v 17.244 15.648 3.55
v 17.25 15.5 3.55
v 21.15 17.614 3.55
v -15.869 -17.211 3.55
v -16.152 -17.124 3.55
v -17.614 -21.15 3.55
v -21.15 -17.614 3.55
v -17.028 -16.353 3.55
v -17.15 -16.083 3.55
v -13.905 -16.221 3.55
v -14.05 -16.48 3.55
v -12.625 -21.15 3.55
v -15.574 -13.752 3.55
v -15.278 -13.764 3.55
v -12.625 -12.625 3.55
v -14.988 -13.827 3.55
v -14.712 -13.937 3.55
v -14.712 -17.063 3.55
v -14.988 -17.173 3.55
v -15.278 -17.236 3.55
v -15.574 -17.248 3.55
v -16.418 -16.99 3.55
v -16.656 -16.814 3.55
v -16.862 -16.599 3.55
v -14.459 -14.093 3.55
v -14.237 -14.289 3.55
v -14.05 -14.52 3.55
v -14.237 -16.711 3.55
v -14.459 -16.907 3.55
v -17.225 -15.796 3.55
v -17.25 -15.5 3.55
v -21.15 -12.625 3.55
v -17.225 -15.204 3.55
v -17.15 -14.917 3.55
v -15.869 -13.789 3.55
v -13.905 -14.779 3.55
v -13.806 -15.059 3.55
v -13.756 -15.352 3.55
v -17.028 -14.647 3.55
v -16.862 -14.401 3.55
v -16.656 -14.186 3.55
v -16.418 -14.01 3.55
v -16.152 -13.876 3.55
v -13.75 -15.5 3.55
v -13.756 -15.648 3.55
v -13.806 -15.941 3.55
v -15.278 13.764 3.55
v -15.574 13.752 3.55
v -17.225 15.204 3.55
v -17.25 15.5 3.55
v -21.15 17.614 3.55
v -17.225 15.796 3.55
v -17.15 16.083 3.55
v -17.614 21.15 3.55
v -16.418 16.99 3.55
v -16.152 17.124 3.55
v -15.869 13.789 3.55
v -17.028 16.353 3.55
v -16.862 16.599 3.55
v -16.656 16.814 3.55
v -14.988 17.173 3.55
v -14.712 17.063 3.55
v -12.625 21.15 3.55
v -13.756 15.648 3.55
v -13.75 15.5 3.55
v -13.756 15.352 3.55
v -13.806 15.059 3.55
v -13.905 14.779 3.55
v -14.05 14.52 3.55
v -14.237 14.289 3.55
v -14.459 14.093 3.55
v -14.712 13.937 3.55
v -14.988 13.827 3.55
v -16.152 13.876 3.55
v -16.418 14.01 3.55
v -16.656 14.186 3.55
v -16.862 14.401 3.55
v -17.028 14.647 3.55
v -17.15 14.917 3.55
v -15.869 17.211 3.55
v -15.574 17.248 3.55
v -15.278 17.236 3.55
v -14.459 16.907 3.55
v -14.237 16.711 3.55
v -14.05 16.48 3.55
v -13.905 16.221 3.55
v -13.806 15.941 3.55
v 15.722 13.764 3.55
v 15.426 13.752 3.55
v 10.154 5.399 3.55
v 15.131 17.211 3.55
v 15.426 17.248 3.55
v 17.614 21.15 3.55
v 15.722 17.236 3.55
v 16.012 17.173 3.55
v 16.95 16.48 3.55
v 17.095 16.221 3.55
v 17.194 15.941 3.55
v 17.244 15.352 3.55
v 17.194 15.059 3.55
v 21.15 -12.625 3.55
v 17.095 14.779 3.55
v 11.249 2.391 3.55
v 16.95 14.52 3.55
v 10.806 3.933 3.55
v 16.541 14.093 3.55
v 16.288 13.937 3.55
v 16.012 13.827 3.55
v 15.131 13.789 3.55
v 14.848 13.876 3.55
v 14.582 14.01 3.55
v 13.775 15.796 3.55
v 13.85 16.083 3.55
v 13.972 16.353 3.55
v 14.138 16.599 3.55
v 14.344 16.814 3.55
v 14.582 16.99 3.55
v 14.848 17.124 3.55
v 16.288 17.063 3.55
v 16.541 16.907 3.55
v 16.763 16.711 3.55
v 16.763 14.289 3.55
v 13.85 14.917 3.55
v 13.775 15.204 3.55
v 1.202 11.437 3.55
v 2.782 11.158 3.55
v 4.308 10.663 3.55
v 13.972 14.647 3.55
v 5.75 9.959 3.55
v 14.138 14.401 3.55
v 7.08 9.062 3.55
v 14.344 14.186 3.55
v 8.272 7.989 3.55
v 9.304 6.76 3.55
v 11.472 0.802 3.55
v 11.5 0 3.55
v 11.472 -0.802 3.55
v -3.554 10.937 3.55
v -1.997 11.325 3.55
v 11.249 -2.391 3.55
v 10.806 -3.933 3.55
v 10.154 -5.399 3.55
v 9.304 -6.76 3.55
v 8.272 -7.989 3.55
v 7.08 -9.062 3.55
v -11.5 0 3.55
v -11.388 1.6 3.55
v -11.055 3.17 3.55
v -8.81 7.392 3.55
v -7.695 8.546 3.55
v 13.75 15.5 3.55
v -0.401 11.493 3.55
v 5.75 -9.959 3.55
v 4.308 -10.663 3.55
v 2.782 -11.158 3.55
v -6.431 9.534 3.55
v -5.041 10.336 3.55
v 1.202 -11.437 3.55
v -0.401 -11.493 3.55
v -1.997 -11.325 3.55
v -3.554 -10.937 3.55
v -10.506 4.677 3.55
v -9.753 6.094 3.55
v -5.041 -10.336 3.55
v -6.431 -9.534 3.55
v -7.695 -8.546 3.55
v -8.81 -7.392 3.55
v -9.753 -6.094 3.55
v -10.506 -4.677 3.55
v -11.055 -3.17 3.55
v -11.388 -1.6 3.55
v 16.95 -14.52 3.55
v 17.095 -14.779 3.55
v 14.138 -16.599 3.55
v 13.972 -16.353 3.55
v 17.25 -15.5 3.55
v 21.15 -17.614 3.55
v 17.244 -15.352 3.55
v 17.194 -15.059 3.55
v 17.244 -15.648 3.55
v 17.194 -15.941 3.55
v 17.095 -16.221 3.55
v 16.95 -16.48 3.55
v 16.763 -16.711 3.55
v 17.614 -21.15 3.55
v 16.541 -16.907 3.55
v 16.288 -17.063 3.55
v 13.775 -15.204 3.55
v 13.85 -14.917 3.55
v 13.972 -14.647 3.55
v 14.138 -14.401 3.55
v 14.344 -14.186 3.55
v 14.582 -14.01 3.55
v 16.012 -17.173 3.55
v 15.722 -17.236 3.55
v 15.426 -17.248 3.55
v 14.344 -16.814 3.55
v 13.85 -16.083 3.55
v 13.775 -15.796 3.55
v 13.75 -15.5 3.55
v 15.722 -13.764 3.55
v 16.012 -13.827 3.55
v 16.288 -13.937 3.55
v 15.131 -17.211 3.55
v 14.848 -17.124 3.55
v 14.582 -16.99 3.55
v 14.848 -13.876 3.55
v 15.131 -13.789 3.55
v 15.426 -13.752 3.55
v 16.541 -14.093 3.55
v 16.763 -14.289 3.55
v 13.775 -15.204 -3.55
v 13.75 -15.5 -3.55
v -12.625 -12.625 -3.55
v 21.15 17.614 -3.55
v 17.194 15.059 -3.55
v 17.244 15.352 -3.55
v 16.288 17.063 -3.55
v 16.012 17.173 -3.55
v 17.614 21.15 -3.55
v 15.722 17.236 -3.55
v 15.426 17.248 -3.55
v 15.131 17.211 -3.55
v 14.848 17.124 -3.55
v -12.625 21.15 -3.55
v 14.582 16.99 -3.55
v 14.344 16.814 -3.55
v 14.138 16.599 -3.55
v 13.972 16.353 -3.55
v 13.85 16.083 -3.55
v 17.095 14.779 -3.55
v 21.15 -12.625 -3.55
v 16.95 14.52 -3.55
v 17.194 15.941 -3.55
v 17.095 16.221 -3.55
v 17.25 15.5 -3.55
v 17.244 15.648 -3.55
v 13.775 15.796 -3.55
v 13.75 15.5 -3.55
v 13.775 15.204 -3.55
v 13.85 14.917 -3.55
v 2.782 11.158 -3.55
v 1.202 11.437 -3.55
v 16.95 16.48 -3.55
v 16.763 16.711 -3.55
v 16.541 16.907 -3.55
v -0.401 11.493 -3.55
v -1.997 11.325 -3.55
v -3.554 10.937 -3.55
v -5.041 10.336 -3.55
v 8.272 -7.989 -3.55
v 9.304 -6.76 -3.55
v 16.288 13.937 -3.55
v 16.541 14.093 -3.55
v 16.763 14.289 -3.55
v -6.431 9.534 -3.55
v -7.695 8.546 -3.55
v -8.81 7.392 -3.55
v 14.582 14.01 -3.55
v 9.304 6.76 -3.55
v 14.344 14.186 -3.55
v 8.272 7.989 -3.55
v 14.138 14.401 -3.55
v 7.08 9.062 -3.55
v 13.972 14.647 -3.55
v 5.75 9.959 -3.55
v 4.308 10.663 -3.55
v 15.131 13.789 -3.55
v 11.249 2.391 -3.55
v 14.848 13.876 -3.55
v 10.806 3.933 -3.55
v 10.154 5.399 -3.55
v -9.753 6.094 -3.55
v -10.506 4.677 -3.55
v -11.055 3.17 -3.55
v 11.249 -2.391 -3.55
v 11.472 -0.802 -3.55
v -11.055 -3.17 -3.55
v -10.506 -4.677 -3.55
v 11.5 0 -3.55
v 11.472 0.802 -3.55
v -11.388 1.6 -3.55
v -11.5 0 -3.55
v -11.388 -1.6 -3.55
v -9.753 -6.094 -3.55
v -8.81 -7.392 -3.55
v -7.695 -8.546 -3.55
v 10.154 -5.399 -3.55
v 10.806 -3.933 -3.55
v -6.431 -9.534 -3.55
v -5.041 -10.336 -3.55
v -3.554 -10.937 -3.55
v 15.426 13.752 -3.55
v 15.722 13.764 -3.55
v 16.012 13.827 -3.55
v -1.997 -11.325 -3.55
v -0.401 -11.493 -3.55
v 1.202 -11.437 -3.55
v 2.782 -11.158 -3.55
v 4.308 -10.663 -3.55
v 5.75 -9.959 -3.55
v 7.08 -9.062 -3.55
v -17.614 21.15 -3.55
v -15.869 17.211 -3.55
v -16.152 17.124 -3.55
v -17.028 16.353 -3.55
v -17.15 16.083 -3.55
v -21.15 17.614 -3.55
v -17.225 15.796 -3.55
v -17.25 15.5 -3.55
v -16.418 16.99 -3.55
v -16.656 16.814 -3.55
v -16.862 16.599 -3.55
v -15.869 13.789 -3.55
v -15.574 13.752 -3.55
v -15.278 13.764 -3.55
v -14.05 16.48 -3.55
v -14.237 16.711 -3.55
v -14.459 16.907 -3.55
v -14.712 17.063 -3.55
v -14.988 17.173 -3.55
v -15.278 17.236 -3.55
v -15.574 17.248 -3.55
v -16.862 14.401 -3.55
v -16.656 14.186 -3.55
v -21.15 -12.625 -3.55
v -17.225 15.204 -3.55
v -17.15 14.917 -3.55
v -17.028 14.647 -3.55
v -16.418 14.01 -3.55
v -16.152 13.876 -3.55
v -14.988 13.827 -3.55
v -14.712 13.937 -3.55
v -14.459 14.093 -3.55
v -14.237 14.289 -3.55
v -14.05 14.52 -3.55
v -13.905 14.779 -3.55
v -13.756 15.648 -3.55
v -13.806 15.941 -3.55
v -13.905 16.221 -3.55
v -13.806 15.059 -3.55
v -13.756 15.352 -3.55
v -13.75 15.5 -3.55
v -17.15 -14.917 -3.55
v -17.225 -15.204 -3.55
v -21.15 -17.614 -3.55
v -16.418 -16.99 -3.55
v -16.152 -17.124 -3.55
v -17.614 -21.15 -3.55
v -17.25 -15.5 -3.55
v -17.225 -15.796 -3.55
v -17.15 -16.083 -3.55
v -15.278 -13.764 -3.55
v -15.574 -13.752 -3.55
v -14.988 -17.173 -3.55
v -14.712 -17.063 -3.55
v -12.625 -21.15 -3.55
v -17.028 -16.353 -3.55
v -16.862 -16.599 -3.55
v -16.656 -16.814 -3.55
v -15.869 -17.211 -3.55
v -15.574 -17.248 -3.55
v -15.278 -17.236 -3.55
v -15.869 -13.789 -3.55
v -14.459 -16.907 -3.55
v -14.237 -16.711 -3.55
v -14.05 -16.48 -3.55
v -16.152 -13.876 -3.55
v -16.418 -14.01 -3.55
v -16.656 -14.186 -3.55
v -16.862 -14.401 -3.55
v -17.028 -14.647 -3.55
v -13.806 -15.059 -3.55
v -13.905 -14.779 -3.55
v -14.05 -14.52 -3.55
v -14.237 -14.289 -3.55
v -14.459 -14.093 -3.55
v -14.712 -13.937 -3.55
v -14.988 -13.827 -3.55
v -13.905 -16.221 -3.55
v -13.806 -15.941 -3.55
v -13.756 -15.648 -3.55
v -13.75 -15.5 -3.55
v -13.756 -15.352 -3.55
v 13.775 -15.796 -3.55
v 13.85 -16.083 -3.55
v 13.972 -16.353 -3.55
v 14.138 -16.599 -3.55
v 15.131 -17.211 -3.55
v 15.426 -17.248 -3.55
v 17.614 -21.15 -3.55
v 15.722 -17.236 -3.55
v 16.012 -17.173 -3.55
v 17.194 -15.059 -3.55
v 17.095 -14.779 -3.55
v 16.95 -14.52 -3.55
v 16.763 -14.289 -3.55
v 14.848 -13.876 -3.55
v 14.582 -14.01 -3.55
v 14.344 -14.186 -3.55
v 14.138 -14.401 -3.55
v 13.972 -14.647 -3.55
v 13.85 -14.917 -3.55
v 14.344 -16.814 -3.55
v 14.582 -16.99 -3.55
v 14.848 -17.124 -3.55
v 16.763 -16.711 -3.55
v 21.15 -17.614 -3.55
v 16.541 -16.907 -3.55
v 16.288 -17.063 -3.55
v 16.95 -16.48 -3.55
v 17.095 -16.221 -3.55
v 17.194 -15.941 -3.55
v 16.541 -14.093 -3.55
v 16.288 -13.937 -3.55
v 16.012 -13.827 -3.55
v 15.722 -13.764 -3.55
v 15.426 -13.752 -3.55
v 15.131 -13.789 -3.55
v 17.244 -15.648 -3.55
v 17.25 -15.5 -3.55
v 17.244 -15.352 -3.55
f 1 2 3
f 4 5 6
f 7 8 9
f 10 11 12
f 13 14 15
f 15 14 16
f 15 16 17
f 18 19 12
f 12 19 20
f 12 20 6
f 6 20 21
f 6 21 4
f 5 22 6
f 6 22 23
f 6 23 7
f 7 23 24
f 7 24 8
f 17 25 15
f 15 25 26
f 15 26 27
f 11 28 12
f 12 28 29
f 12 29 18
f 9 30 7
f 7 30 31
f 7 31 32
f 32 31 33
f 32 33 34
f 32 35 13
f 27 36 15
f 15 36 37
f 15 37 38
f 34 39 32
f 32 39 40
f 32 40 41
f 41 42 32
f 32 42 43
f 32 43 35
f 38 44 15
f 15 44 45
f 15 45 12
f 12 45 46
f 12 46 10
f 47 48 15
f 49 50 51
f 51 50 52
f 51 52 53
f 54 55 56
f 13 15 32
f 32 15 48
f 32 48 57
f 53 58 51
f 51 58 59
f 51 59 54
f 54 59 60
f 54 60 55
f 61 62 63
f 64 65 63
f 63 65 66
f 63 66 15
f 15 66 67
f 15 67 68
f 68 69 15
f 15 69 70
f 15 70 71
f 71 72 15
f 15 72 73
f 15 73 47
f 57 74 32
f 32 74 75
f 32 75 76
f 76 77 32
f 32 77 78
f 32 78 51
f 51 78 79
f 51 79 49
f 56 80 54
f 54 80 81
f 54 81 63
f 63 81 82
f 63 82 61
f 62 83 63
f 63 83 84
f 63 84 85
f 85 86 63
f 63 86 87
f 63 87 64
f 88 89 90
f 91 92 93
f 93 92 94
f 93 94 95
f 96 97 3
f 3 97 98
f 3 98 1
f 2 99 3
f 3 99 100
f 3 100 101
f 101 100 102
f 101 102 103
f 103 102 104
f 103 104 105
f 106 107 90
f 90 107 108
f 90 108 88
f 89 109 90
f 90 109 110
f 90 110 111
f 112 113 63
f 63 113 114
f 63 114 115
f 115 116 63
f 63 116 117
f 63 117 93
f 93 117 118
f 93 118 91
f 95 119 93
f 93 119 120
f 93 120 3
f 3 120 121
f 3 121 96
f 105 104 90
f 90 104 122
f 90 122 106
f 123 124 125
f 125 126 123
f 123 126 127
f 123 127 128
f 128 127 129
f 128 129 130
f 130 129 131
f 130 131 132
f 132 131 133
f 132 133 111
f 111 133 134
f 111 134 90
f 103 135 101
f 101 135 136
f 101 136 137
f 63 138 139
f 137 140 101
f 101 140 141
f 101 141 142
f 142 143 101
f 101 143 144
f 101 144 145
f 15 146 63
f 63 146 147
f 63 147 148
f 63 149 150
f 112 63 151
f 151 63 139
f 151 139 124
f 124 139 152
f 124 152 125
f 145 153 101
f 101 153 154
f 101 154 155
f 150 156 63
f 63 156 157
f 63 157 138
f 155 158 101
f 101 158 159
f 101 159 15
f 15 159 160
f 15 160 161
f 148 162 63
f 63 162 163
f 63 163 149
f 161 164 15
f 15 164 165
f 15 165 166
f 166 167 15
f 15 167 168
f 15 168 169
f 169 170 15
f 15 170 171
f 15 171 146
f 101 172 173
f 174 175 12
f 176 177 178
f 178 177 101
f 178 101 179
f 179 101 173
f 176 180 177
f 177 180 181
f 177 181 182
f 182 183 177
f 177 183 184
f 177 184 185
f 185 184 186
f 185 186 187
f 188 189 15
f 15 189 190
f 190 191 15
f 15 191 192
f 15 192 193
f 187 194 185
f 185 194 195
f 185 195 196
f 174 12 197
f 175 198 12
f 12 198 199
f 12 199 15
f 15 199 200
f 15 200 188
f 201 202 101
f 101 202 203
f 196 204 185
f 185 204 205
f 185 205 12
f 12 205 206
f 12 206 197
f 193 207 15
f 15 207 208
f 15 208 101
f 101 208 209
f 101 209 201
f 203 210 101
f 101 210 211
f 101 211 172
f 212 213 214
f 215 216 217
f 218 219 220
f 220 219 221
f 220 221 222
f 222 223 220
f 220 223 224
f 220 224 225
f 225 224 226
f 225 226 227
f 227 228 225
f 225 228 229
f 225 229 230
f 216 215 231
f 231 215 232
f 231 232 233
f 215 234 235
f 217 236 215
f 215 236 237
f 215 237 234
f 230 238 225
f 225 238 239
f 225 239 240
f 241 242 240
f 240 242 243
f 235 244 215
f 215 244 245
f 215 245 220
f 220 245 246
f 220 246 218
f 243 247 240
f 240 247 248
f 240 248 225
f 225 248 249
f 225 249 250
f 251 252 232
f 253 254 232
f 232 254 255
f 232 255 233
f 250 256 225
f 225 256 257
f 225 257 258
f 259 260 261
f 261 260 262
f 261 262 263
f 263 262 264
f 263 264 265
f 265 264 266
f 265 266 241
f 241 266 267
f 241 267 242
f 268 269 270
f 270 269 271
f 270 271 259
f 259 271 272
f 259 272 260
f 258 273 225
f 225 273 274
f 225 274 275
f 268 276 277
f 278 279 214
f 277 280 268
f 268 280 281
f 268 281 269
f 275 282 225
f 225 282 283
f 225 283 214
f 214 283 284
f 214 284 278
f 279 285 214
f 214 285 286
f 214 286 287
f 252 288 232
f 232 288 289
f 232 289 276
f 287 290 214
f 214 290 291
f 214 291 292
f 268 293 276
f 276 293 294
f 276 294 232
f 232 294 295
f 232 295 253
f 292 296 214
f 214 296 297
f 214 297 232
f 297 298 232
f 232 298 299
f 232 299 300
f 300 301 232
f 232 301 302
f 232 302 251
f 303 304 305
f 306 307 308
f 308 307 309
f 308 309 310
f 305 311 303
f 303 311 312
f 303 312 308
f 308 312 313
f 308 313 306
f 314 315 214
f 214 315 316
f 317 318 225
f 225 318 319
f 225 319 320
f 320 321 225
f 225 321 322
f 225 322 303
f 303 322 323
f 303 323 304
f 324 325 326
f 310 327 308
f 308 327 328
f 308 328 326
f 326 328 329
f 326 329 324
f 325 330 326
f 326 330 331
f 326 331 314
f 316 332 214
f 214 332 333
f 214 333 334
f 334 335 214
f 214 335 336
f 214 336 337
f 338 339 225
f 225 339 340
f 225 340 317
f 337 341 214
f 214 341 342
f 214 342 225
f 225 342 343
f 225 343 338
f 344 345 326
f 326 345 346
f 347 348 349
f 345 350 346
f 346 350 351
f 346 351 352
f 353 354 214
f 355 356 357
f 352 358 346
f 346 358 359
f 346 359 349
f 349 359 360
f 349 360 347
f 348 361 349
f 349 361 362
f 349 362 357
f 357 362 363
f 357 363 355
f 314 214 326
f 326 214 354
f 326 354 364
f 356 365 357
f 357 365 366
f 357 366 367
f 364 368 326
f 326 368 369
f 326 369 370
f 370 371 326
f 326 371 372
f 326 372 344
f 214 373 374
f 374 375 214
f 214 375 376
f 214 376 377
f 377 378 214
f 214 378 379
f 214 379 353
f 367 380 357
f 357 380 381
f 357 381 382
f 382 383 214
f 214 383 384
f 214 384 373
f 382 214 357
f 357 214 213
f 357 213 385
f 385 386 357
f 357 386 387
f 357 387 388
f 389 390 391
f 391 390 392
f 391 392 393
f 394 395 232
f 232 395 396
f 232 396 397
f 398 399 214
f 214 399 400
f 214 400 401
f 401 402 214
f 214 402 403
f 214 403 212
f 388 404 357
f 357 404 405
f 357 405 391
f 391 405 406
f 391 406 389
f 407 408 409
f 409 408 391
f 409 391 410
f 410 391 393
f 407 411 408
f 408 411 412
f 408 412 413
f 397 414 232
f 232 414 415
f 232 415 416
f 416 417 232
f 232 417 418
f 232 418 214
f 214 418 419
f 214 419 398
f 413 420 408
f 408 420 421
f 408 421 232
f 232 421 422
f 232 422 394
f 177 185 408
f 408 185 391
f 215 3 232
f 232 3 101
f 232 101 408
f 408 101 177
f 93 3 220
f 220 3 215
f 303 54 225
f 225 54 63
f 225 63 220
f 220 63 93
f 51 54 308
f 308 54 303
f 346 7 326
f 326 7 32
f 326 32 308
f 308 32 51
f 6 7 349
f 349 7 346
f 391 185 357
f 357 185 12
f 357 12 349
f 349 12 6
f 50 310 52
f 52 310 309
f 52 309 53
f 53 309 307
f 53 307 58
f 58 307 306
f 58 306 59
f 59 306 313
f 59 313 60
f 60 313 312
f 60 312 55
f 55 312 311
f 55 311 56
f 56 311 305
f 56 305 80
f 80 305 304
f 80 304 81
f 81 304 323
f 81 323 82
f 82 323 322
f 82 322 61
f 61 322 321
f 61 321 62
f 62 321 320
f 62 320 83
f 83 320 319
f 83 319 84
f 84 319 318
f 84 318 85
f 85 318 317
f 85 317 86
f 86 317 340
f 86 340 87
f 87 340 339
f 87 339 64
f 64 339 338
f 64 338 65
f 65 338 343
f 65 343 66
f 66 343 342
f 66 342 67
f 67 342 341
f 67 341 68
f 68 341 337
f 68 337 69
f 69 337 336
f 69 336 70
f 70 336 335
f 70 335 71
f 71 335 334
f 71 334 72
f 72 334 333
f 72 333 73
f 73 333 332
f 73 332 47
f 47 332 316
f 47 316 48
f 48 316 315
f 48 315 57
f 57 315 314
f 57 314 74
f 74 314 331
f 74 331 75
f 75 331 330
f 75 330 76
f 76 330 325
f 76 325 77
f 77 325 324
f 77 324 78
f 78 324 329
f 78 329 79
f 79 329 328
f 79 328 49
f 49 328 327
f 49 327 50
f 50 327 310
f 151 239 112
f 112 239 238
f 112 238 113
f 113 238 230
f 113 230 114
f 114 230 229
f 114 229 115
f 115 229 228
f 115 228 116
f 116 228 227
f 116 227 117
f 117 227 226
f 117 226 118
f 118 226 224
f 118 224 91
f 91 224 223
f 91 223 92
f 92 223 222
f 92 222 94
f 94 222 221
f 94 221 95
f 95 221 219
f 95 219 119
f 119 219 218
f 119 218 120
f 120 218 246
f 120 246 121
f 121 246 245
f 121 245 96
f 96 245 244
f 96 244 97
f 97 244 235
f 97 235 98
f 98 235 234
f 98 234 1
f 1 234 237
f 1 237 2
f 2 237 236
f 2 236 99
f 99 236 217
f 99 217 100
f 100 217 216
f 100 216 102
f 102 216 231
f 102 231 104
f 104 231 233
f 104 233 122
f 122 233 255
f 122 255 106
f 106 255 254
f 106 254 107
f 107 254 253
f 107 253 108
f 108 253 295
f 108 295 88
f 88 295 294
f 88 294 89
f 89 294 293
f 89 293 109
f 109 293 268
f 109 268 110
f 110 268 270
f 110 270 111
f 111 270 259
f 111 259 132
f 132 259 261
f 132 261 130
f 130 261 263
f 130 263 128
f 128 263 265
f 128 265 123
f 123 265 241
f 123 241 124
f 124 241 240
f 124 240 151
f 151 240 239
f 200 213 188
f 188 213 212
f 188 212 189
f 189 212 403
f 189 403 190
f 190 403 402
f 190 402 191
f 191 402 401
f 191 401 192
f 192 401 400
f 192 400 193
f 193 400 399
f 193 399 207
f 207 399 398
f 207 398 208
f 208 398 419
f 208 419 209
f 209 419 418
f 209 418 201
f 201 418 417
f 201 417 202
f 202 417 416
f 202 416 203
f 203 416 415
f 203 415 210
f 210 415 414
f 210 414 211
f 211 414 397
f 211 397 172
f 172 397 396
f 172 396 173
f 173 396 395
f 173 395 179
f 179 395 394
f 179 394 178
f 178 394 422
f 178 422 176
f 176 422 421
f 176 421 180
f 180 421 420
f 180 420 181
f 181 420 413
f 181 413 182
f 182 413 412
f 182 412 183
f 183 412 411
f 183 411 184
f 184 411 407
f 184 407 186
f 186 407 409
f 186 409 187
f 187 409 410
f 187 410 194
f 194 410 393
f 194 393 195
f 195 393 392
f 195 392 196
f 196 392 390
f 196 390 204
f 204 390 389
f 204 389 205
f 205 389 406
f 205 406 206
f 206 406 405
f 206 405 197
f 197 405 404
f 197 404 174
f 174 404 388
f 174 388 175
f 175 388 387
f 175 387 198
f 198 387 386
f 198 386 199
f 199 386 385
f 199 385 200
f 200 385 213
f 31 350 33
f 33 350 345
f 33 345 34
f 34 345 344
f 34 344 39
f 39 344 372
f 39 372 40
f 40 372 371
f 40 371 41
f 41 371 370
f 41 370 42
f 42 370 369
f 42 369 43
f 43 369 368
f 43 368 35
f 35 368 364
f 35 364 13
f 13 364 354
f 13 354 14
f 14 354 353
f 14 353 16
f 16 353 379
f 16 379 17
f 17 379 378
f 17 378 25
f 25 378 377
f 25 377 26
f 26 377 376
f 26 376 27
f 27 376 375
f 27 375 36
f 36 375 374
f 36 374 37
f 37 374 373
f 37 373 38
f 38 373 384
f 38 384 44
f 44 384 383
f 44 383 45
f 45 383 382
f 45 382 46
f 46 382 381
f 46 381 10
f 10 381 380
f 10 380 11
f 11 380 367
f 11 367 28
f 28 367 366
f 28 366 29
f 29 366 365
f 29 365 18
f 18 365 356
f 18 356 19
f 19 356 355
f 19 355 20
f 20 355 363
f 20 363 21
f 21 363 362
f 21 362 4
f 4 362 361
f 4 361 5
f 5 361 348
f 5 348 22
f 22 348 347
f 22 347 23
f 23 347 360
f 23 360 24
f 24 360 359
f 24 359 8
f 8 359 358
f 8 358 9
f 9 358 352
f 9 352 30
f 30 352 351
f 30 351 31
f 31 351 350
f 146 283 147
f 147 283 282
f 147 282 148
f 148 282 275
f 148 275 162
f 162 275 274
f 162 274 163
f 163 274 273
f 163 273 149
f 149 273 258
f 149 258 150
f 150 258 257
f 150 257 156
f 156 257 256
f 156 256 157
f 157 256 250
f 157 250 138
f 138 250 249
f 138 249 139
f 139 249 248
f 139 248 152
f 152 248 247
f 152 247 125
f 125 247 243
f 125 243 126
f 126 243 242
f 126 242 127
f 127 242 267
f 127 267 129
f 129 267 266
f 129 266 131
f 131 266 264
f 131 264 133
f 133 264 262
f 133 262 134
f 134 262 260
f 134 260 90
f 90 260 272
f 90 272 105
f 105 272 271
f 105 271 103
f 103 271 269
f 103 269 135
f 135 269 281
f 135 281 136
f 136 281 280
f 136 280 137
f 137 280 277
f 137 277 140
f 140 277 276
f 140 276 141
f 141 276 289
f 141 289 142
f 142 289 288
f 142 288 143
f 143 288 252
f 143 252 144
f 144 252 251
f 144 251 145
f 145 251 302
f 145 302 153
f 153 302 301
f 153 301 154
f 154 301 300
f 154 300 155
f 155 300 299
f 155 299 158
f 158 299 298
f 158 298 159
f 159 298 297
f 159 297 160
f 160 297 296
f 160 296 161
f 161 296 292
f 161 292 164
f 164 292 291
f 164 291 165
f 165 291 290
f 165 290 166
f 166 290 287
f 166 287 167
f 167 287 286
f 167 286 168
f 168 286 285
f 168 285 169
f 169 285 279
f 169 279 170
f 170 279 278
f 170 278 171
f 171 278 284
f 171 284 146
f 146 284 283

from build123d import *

# Parameters (mm, degrees)
SKETCH1_R           = 1.75
SKETCH1_R_2         = 11.5
BOSS_EXTRUDE1_DEPTH = 3.55


with BuildPart() as part:
    # Sketch1 → Boss-Extrude1 (new, symmetric)
    with BuildSketch(Plane.XY):
        Polygon((21.15, -17.614466094), (21.15, 17.614466094), (17.614466094, 21.15), (-17.614466094, 21.15), (-21.15, 17.614466094), (-21.15, -17.614466094), (-17.614466094, -21.15), (17.614466094, -21.15), align=None)
        with Locations((-15.5, 15.5)):
            Circle(SKETCH1_R, mode=Mode.SUBTRACT)
        with Locations((15.5, 15.5)):
            Circle(SKETCH1_R, mode=Mode.SUBTRACT)
        with Locations((15.5, -15.5)):
            Circle(SKETCH1_R, mode=Mode.SUBTRACT)
        with Locations((-15.5, -15.5)):
            Circle(SKETCH1_R, mode=Mode.SUBTRACT)
        Circle(SKETCH1_R_2, mode=Mode.SUBTRACT)
    extrude(amount=BOSS_EXTRUDE1_DEPTH, both=True)


solid = part.part
